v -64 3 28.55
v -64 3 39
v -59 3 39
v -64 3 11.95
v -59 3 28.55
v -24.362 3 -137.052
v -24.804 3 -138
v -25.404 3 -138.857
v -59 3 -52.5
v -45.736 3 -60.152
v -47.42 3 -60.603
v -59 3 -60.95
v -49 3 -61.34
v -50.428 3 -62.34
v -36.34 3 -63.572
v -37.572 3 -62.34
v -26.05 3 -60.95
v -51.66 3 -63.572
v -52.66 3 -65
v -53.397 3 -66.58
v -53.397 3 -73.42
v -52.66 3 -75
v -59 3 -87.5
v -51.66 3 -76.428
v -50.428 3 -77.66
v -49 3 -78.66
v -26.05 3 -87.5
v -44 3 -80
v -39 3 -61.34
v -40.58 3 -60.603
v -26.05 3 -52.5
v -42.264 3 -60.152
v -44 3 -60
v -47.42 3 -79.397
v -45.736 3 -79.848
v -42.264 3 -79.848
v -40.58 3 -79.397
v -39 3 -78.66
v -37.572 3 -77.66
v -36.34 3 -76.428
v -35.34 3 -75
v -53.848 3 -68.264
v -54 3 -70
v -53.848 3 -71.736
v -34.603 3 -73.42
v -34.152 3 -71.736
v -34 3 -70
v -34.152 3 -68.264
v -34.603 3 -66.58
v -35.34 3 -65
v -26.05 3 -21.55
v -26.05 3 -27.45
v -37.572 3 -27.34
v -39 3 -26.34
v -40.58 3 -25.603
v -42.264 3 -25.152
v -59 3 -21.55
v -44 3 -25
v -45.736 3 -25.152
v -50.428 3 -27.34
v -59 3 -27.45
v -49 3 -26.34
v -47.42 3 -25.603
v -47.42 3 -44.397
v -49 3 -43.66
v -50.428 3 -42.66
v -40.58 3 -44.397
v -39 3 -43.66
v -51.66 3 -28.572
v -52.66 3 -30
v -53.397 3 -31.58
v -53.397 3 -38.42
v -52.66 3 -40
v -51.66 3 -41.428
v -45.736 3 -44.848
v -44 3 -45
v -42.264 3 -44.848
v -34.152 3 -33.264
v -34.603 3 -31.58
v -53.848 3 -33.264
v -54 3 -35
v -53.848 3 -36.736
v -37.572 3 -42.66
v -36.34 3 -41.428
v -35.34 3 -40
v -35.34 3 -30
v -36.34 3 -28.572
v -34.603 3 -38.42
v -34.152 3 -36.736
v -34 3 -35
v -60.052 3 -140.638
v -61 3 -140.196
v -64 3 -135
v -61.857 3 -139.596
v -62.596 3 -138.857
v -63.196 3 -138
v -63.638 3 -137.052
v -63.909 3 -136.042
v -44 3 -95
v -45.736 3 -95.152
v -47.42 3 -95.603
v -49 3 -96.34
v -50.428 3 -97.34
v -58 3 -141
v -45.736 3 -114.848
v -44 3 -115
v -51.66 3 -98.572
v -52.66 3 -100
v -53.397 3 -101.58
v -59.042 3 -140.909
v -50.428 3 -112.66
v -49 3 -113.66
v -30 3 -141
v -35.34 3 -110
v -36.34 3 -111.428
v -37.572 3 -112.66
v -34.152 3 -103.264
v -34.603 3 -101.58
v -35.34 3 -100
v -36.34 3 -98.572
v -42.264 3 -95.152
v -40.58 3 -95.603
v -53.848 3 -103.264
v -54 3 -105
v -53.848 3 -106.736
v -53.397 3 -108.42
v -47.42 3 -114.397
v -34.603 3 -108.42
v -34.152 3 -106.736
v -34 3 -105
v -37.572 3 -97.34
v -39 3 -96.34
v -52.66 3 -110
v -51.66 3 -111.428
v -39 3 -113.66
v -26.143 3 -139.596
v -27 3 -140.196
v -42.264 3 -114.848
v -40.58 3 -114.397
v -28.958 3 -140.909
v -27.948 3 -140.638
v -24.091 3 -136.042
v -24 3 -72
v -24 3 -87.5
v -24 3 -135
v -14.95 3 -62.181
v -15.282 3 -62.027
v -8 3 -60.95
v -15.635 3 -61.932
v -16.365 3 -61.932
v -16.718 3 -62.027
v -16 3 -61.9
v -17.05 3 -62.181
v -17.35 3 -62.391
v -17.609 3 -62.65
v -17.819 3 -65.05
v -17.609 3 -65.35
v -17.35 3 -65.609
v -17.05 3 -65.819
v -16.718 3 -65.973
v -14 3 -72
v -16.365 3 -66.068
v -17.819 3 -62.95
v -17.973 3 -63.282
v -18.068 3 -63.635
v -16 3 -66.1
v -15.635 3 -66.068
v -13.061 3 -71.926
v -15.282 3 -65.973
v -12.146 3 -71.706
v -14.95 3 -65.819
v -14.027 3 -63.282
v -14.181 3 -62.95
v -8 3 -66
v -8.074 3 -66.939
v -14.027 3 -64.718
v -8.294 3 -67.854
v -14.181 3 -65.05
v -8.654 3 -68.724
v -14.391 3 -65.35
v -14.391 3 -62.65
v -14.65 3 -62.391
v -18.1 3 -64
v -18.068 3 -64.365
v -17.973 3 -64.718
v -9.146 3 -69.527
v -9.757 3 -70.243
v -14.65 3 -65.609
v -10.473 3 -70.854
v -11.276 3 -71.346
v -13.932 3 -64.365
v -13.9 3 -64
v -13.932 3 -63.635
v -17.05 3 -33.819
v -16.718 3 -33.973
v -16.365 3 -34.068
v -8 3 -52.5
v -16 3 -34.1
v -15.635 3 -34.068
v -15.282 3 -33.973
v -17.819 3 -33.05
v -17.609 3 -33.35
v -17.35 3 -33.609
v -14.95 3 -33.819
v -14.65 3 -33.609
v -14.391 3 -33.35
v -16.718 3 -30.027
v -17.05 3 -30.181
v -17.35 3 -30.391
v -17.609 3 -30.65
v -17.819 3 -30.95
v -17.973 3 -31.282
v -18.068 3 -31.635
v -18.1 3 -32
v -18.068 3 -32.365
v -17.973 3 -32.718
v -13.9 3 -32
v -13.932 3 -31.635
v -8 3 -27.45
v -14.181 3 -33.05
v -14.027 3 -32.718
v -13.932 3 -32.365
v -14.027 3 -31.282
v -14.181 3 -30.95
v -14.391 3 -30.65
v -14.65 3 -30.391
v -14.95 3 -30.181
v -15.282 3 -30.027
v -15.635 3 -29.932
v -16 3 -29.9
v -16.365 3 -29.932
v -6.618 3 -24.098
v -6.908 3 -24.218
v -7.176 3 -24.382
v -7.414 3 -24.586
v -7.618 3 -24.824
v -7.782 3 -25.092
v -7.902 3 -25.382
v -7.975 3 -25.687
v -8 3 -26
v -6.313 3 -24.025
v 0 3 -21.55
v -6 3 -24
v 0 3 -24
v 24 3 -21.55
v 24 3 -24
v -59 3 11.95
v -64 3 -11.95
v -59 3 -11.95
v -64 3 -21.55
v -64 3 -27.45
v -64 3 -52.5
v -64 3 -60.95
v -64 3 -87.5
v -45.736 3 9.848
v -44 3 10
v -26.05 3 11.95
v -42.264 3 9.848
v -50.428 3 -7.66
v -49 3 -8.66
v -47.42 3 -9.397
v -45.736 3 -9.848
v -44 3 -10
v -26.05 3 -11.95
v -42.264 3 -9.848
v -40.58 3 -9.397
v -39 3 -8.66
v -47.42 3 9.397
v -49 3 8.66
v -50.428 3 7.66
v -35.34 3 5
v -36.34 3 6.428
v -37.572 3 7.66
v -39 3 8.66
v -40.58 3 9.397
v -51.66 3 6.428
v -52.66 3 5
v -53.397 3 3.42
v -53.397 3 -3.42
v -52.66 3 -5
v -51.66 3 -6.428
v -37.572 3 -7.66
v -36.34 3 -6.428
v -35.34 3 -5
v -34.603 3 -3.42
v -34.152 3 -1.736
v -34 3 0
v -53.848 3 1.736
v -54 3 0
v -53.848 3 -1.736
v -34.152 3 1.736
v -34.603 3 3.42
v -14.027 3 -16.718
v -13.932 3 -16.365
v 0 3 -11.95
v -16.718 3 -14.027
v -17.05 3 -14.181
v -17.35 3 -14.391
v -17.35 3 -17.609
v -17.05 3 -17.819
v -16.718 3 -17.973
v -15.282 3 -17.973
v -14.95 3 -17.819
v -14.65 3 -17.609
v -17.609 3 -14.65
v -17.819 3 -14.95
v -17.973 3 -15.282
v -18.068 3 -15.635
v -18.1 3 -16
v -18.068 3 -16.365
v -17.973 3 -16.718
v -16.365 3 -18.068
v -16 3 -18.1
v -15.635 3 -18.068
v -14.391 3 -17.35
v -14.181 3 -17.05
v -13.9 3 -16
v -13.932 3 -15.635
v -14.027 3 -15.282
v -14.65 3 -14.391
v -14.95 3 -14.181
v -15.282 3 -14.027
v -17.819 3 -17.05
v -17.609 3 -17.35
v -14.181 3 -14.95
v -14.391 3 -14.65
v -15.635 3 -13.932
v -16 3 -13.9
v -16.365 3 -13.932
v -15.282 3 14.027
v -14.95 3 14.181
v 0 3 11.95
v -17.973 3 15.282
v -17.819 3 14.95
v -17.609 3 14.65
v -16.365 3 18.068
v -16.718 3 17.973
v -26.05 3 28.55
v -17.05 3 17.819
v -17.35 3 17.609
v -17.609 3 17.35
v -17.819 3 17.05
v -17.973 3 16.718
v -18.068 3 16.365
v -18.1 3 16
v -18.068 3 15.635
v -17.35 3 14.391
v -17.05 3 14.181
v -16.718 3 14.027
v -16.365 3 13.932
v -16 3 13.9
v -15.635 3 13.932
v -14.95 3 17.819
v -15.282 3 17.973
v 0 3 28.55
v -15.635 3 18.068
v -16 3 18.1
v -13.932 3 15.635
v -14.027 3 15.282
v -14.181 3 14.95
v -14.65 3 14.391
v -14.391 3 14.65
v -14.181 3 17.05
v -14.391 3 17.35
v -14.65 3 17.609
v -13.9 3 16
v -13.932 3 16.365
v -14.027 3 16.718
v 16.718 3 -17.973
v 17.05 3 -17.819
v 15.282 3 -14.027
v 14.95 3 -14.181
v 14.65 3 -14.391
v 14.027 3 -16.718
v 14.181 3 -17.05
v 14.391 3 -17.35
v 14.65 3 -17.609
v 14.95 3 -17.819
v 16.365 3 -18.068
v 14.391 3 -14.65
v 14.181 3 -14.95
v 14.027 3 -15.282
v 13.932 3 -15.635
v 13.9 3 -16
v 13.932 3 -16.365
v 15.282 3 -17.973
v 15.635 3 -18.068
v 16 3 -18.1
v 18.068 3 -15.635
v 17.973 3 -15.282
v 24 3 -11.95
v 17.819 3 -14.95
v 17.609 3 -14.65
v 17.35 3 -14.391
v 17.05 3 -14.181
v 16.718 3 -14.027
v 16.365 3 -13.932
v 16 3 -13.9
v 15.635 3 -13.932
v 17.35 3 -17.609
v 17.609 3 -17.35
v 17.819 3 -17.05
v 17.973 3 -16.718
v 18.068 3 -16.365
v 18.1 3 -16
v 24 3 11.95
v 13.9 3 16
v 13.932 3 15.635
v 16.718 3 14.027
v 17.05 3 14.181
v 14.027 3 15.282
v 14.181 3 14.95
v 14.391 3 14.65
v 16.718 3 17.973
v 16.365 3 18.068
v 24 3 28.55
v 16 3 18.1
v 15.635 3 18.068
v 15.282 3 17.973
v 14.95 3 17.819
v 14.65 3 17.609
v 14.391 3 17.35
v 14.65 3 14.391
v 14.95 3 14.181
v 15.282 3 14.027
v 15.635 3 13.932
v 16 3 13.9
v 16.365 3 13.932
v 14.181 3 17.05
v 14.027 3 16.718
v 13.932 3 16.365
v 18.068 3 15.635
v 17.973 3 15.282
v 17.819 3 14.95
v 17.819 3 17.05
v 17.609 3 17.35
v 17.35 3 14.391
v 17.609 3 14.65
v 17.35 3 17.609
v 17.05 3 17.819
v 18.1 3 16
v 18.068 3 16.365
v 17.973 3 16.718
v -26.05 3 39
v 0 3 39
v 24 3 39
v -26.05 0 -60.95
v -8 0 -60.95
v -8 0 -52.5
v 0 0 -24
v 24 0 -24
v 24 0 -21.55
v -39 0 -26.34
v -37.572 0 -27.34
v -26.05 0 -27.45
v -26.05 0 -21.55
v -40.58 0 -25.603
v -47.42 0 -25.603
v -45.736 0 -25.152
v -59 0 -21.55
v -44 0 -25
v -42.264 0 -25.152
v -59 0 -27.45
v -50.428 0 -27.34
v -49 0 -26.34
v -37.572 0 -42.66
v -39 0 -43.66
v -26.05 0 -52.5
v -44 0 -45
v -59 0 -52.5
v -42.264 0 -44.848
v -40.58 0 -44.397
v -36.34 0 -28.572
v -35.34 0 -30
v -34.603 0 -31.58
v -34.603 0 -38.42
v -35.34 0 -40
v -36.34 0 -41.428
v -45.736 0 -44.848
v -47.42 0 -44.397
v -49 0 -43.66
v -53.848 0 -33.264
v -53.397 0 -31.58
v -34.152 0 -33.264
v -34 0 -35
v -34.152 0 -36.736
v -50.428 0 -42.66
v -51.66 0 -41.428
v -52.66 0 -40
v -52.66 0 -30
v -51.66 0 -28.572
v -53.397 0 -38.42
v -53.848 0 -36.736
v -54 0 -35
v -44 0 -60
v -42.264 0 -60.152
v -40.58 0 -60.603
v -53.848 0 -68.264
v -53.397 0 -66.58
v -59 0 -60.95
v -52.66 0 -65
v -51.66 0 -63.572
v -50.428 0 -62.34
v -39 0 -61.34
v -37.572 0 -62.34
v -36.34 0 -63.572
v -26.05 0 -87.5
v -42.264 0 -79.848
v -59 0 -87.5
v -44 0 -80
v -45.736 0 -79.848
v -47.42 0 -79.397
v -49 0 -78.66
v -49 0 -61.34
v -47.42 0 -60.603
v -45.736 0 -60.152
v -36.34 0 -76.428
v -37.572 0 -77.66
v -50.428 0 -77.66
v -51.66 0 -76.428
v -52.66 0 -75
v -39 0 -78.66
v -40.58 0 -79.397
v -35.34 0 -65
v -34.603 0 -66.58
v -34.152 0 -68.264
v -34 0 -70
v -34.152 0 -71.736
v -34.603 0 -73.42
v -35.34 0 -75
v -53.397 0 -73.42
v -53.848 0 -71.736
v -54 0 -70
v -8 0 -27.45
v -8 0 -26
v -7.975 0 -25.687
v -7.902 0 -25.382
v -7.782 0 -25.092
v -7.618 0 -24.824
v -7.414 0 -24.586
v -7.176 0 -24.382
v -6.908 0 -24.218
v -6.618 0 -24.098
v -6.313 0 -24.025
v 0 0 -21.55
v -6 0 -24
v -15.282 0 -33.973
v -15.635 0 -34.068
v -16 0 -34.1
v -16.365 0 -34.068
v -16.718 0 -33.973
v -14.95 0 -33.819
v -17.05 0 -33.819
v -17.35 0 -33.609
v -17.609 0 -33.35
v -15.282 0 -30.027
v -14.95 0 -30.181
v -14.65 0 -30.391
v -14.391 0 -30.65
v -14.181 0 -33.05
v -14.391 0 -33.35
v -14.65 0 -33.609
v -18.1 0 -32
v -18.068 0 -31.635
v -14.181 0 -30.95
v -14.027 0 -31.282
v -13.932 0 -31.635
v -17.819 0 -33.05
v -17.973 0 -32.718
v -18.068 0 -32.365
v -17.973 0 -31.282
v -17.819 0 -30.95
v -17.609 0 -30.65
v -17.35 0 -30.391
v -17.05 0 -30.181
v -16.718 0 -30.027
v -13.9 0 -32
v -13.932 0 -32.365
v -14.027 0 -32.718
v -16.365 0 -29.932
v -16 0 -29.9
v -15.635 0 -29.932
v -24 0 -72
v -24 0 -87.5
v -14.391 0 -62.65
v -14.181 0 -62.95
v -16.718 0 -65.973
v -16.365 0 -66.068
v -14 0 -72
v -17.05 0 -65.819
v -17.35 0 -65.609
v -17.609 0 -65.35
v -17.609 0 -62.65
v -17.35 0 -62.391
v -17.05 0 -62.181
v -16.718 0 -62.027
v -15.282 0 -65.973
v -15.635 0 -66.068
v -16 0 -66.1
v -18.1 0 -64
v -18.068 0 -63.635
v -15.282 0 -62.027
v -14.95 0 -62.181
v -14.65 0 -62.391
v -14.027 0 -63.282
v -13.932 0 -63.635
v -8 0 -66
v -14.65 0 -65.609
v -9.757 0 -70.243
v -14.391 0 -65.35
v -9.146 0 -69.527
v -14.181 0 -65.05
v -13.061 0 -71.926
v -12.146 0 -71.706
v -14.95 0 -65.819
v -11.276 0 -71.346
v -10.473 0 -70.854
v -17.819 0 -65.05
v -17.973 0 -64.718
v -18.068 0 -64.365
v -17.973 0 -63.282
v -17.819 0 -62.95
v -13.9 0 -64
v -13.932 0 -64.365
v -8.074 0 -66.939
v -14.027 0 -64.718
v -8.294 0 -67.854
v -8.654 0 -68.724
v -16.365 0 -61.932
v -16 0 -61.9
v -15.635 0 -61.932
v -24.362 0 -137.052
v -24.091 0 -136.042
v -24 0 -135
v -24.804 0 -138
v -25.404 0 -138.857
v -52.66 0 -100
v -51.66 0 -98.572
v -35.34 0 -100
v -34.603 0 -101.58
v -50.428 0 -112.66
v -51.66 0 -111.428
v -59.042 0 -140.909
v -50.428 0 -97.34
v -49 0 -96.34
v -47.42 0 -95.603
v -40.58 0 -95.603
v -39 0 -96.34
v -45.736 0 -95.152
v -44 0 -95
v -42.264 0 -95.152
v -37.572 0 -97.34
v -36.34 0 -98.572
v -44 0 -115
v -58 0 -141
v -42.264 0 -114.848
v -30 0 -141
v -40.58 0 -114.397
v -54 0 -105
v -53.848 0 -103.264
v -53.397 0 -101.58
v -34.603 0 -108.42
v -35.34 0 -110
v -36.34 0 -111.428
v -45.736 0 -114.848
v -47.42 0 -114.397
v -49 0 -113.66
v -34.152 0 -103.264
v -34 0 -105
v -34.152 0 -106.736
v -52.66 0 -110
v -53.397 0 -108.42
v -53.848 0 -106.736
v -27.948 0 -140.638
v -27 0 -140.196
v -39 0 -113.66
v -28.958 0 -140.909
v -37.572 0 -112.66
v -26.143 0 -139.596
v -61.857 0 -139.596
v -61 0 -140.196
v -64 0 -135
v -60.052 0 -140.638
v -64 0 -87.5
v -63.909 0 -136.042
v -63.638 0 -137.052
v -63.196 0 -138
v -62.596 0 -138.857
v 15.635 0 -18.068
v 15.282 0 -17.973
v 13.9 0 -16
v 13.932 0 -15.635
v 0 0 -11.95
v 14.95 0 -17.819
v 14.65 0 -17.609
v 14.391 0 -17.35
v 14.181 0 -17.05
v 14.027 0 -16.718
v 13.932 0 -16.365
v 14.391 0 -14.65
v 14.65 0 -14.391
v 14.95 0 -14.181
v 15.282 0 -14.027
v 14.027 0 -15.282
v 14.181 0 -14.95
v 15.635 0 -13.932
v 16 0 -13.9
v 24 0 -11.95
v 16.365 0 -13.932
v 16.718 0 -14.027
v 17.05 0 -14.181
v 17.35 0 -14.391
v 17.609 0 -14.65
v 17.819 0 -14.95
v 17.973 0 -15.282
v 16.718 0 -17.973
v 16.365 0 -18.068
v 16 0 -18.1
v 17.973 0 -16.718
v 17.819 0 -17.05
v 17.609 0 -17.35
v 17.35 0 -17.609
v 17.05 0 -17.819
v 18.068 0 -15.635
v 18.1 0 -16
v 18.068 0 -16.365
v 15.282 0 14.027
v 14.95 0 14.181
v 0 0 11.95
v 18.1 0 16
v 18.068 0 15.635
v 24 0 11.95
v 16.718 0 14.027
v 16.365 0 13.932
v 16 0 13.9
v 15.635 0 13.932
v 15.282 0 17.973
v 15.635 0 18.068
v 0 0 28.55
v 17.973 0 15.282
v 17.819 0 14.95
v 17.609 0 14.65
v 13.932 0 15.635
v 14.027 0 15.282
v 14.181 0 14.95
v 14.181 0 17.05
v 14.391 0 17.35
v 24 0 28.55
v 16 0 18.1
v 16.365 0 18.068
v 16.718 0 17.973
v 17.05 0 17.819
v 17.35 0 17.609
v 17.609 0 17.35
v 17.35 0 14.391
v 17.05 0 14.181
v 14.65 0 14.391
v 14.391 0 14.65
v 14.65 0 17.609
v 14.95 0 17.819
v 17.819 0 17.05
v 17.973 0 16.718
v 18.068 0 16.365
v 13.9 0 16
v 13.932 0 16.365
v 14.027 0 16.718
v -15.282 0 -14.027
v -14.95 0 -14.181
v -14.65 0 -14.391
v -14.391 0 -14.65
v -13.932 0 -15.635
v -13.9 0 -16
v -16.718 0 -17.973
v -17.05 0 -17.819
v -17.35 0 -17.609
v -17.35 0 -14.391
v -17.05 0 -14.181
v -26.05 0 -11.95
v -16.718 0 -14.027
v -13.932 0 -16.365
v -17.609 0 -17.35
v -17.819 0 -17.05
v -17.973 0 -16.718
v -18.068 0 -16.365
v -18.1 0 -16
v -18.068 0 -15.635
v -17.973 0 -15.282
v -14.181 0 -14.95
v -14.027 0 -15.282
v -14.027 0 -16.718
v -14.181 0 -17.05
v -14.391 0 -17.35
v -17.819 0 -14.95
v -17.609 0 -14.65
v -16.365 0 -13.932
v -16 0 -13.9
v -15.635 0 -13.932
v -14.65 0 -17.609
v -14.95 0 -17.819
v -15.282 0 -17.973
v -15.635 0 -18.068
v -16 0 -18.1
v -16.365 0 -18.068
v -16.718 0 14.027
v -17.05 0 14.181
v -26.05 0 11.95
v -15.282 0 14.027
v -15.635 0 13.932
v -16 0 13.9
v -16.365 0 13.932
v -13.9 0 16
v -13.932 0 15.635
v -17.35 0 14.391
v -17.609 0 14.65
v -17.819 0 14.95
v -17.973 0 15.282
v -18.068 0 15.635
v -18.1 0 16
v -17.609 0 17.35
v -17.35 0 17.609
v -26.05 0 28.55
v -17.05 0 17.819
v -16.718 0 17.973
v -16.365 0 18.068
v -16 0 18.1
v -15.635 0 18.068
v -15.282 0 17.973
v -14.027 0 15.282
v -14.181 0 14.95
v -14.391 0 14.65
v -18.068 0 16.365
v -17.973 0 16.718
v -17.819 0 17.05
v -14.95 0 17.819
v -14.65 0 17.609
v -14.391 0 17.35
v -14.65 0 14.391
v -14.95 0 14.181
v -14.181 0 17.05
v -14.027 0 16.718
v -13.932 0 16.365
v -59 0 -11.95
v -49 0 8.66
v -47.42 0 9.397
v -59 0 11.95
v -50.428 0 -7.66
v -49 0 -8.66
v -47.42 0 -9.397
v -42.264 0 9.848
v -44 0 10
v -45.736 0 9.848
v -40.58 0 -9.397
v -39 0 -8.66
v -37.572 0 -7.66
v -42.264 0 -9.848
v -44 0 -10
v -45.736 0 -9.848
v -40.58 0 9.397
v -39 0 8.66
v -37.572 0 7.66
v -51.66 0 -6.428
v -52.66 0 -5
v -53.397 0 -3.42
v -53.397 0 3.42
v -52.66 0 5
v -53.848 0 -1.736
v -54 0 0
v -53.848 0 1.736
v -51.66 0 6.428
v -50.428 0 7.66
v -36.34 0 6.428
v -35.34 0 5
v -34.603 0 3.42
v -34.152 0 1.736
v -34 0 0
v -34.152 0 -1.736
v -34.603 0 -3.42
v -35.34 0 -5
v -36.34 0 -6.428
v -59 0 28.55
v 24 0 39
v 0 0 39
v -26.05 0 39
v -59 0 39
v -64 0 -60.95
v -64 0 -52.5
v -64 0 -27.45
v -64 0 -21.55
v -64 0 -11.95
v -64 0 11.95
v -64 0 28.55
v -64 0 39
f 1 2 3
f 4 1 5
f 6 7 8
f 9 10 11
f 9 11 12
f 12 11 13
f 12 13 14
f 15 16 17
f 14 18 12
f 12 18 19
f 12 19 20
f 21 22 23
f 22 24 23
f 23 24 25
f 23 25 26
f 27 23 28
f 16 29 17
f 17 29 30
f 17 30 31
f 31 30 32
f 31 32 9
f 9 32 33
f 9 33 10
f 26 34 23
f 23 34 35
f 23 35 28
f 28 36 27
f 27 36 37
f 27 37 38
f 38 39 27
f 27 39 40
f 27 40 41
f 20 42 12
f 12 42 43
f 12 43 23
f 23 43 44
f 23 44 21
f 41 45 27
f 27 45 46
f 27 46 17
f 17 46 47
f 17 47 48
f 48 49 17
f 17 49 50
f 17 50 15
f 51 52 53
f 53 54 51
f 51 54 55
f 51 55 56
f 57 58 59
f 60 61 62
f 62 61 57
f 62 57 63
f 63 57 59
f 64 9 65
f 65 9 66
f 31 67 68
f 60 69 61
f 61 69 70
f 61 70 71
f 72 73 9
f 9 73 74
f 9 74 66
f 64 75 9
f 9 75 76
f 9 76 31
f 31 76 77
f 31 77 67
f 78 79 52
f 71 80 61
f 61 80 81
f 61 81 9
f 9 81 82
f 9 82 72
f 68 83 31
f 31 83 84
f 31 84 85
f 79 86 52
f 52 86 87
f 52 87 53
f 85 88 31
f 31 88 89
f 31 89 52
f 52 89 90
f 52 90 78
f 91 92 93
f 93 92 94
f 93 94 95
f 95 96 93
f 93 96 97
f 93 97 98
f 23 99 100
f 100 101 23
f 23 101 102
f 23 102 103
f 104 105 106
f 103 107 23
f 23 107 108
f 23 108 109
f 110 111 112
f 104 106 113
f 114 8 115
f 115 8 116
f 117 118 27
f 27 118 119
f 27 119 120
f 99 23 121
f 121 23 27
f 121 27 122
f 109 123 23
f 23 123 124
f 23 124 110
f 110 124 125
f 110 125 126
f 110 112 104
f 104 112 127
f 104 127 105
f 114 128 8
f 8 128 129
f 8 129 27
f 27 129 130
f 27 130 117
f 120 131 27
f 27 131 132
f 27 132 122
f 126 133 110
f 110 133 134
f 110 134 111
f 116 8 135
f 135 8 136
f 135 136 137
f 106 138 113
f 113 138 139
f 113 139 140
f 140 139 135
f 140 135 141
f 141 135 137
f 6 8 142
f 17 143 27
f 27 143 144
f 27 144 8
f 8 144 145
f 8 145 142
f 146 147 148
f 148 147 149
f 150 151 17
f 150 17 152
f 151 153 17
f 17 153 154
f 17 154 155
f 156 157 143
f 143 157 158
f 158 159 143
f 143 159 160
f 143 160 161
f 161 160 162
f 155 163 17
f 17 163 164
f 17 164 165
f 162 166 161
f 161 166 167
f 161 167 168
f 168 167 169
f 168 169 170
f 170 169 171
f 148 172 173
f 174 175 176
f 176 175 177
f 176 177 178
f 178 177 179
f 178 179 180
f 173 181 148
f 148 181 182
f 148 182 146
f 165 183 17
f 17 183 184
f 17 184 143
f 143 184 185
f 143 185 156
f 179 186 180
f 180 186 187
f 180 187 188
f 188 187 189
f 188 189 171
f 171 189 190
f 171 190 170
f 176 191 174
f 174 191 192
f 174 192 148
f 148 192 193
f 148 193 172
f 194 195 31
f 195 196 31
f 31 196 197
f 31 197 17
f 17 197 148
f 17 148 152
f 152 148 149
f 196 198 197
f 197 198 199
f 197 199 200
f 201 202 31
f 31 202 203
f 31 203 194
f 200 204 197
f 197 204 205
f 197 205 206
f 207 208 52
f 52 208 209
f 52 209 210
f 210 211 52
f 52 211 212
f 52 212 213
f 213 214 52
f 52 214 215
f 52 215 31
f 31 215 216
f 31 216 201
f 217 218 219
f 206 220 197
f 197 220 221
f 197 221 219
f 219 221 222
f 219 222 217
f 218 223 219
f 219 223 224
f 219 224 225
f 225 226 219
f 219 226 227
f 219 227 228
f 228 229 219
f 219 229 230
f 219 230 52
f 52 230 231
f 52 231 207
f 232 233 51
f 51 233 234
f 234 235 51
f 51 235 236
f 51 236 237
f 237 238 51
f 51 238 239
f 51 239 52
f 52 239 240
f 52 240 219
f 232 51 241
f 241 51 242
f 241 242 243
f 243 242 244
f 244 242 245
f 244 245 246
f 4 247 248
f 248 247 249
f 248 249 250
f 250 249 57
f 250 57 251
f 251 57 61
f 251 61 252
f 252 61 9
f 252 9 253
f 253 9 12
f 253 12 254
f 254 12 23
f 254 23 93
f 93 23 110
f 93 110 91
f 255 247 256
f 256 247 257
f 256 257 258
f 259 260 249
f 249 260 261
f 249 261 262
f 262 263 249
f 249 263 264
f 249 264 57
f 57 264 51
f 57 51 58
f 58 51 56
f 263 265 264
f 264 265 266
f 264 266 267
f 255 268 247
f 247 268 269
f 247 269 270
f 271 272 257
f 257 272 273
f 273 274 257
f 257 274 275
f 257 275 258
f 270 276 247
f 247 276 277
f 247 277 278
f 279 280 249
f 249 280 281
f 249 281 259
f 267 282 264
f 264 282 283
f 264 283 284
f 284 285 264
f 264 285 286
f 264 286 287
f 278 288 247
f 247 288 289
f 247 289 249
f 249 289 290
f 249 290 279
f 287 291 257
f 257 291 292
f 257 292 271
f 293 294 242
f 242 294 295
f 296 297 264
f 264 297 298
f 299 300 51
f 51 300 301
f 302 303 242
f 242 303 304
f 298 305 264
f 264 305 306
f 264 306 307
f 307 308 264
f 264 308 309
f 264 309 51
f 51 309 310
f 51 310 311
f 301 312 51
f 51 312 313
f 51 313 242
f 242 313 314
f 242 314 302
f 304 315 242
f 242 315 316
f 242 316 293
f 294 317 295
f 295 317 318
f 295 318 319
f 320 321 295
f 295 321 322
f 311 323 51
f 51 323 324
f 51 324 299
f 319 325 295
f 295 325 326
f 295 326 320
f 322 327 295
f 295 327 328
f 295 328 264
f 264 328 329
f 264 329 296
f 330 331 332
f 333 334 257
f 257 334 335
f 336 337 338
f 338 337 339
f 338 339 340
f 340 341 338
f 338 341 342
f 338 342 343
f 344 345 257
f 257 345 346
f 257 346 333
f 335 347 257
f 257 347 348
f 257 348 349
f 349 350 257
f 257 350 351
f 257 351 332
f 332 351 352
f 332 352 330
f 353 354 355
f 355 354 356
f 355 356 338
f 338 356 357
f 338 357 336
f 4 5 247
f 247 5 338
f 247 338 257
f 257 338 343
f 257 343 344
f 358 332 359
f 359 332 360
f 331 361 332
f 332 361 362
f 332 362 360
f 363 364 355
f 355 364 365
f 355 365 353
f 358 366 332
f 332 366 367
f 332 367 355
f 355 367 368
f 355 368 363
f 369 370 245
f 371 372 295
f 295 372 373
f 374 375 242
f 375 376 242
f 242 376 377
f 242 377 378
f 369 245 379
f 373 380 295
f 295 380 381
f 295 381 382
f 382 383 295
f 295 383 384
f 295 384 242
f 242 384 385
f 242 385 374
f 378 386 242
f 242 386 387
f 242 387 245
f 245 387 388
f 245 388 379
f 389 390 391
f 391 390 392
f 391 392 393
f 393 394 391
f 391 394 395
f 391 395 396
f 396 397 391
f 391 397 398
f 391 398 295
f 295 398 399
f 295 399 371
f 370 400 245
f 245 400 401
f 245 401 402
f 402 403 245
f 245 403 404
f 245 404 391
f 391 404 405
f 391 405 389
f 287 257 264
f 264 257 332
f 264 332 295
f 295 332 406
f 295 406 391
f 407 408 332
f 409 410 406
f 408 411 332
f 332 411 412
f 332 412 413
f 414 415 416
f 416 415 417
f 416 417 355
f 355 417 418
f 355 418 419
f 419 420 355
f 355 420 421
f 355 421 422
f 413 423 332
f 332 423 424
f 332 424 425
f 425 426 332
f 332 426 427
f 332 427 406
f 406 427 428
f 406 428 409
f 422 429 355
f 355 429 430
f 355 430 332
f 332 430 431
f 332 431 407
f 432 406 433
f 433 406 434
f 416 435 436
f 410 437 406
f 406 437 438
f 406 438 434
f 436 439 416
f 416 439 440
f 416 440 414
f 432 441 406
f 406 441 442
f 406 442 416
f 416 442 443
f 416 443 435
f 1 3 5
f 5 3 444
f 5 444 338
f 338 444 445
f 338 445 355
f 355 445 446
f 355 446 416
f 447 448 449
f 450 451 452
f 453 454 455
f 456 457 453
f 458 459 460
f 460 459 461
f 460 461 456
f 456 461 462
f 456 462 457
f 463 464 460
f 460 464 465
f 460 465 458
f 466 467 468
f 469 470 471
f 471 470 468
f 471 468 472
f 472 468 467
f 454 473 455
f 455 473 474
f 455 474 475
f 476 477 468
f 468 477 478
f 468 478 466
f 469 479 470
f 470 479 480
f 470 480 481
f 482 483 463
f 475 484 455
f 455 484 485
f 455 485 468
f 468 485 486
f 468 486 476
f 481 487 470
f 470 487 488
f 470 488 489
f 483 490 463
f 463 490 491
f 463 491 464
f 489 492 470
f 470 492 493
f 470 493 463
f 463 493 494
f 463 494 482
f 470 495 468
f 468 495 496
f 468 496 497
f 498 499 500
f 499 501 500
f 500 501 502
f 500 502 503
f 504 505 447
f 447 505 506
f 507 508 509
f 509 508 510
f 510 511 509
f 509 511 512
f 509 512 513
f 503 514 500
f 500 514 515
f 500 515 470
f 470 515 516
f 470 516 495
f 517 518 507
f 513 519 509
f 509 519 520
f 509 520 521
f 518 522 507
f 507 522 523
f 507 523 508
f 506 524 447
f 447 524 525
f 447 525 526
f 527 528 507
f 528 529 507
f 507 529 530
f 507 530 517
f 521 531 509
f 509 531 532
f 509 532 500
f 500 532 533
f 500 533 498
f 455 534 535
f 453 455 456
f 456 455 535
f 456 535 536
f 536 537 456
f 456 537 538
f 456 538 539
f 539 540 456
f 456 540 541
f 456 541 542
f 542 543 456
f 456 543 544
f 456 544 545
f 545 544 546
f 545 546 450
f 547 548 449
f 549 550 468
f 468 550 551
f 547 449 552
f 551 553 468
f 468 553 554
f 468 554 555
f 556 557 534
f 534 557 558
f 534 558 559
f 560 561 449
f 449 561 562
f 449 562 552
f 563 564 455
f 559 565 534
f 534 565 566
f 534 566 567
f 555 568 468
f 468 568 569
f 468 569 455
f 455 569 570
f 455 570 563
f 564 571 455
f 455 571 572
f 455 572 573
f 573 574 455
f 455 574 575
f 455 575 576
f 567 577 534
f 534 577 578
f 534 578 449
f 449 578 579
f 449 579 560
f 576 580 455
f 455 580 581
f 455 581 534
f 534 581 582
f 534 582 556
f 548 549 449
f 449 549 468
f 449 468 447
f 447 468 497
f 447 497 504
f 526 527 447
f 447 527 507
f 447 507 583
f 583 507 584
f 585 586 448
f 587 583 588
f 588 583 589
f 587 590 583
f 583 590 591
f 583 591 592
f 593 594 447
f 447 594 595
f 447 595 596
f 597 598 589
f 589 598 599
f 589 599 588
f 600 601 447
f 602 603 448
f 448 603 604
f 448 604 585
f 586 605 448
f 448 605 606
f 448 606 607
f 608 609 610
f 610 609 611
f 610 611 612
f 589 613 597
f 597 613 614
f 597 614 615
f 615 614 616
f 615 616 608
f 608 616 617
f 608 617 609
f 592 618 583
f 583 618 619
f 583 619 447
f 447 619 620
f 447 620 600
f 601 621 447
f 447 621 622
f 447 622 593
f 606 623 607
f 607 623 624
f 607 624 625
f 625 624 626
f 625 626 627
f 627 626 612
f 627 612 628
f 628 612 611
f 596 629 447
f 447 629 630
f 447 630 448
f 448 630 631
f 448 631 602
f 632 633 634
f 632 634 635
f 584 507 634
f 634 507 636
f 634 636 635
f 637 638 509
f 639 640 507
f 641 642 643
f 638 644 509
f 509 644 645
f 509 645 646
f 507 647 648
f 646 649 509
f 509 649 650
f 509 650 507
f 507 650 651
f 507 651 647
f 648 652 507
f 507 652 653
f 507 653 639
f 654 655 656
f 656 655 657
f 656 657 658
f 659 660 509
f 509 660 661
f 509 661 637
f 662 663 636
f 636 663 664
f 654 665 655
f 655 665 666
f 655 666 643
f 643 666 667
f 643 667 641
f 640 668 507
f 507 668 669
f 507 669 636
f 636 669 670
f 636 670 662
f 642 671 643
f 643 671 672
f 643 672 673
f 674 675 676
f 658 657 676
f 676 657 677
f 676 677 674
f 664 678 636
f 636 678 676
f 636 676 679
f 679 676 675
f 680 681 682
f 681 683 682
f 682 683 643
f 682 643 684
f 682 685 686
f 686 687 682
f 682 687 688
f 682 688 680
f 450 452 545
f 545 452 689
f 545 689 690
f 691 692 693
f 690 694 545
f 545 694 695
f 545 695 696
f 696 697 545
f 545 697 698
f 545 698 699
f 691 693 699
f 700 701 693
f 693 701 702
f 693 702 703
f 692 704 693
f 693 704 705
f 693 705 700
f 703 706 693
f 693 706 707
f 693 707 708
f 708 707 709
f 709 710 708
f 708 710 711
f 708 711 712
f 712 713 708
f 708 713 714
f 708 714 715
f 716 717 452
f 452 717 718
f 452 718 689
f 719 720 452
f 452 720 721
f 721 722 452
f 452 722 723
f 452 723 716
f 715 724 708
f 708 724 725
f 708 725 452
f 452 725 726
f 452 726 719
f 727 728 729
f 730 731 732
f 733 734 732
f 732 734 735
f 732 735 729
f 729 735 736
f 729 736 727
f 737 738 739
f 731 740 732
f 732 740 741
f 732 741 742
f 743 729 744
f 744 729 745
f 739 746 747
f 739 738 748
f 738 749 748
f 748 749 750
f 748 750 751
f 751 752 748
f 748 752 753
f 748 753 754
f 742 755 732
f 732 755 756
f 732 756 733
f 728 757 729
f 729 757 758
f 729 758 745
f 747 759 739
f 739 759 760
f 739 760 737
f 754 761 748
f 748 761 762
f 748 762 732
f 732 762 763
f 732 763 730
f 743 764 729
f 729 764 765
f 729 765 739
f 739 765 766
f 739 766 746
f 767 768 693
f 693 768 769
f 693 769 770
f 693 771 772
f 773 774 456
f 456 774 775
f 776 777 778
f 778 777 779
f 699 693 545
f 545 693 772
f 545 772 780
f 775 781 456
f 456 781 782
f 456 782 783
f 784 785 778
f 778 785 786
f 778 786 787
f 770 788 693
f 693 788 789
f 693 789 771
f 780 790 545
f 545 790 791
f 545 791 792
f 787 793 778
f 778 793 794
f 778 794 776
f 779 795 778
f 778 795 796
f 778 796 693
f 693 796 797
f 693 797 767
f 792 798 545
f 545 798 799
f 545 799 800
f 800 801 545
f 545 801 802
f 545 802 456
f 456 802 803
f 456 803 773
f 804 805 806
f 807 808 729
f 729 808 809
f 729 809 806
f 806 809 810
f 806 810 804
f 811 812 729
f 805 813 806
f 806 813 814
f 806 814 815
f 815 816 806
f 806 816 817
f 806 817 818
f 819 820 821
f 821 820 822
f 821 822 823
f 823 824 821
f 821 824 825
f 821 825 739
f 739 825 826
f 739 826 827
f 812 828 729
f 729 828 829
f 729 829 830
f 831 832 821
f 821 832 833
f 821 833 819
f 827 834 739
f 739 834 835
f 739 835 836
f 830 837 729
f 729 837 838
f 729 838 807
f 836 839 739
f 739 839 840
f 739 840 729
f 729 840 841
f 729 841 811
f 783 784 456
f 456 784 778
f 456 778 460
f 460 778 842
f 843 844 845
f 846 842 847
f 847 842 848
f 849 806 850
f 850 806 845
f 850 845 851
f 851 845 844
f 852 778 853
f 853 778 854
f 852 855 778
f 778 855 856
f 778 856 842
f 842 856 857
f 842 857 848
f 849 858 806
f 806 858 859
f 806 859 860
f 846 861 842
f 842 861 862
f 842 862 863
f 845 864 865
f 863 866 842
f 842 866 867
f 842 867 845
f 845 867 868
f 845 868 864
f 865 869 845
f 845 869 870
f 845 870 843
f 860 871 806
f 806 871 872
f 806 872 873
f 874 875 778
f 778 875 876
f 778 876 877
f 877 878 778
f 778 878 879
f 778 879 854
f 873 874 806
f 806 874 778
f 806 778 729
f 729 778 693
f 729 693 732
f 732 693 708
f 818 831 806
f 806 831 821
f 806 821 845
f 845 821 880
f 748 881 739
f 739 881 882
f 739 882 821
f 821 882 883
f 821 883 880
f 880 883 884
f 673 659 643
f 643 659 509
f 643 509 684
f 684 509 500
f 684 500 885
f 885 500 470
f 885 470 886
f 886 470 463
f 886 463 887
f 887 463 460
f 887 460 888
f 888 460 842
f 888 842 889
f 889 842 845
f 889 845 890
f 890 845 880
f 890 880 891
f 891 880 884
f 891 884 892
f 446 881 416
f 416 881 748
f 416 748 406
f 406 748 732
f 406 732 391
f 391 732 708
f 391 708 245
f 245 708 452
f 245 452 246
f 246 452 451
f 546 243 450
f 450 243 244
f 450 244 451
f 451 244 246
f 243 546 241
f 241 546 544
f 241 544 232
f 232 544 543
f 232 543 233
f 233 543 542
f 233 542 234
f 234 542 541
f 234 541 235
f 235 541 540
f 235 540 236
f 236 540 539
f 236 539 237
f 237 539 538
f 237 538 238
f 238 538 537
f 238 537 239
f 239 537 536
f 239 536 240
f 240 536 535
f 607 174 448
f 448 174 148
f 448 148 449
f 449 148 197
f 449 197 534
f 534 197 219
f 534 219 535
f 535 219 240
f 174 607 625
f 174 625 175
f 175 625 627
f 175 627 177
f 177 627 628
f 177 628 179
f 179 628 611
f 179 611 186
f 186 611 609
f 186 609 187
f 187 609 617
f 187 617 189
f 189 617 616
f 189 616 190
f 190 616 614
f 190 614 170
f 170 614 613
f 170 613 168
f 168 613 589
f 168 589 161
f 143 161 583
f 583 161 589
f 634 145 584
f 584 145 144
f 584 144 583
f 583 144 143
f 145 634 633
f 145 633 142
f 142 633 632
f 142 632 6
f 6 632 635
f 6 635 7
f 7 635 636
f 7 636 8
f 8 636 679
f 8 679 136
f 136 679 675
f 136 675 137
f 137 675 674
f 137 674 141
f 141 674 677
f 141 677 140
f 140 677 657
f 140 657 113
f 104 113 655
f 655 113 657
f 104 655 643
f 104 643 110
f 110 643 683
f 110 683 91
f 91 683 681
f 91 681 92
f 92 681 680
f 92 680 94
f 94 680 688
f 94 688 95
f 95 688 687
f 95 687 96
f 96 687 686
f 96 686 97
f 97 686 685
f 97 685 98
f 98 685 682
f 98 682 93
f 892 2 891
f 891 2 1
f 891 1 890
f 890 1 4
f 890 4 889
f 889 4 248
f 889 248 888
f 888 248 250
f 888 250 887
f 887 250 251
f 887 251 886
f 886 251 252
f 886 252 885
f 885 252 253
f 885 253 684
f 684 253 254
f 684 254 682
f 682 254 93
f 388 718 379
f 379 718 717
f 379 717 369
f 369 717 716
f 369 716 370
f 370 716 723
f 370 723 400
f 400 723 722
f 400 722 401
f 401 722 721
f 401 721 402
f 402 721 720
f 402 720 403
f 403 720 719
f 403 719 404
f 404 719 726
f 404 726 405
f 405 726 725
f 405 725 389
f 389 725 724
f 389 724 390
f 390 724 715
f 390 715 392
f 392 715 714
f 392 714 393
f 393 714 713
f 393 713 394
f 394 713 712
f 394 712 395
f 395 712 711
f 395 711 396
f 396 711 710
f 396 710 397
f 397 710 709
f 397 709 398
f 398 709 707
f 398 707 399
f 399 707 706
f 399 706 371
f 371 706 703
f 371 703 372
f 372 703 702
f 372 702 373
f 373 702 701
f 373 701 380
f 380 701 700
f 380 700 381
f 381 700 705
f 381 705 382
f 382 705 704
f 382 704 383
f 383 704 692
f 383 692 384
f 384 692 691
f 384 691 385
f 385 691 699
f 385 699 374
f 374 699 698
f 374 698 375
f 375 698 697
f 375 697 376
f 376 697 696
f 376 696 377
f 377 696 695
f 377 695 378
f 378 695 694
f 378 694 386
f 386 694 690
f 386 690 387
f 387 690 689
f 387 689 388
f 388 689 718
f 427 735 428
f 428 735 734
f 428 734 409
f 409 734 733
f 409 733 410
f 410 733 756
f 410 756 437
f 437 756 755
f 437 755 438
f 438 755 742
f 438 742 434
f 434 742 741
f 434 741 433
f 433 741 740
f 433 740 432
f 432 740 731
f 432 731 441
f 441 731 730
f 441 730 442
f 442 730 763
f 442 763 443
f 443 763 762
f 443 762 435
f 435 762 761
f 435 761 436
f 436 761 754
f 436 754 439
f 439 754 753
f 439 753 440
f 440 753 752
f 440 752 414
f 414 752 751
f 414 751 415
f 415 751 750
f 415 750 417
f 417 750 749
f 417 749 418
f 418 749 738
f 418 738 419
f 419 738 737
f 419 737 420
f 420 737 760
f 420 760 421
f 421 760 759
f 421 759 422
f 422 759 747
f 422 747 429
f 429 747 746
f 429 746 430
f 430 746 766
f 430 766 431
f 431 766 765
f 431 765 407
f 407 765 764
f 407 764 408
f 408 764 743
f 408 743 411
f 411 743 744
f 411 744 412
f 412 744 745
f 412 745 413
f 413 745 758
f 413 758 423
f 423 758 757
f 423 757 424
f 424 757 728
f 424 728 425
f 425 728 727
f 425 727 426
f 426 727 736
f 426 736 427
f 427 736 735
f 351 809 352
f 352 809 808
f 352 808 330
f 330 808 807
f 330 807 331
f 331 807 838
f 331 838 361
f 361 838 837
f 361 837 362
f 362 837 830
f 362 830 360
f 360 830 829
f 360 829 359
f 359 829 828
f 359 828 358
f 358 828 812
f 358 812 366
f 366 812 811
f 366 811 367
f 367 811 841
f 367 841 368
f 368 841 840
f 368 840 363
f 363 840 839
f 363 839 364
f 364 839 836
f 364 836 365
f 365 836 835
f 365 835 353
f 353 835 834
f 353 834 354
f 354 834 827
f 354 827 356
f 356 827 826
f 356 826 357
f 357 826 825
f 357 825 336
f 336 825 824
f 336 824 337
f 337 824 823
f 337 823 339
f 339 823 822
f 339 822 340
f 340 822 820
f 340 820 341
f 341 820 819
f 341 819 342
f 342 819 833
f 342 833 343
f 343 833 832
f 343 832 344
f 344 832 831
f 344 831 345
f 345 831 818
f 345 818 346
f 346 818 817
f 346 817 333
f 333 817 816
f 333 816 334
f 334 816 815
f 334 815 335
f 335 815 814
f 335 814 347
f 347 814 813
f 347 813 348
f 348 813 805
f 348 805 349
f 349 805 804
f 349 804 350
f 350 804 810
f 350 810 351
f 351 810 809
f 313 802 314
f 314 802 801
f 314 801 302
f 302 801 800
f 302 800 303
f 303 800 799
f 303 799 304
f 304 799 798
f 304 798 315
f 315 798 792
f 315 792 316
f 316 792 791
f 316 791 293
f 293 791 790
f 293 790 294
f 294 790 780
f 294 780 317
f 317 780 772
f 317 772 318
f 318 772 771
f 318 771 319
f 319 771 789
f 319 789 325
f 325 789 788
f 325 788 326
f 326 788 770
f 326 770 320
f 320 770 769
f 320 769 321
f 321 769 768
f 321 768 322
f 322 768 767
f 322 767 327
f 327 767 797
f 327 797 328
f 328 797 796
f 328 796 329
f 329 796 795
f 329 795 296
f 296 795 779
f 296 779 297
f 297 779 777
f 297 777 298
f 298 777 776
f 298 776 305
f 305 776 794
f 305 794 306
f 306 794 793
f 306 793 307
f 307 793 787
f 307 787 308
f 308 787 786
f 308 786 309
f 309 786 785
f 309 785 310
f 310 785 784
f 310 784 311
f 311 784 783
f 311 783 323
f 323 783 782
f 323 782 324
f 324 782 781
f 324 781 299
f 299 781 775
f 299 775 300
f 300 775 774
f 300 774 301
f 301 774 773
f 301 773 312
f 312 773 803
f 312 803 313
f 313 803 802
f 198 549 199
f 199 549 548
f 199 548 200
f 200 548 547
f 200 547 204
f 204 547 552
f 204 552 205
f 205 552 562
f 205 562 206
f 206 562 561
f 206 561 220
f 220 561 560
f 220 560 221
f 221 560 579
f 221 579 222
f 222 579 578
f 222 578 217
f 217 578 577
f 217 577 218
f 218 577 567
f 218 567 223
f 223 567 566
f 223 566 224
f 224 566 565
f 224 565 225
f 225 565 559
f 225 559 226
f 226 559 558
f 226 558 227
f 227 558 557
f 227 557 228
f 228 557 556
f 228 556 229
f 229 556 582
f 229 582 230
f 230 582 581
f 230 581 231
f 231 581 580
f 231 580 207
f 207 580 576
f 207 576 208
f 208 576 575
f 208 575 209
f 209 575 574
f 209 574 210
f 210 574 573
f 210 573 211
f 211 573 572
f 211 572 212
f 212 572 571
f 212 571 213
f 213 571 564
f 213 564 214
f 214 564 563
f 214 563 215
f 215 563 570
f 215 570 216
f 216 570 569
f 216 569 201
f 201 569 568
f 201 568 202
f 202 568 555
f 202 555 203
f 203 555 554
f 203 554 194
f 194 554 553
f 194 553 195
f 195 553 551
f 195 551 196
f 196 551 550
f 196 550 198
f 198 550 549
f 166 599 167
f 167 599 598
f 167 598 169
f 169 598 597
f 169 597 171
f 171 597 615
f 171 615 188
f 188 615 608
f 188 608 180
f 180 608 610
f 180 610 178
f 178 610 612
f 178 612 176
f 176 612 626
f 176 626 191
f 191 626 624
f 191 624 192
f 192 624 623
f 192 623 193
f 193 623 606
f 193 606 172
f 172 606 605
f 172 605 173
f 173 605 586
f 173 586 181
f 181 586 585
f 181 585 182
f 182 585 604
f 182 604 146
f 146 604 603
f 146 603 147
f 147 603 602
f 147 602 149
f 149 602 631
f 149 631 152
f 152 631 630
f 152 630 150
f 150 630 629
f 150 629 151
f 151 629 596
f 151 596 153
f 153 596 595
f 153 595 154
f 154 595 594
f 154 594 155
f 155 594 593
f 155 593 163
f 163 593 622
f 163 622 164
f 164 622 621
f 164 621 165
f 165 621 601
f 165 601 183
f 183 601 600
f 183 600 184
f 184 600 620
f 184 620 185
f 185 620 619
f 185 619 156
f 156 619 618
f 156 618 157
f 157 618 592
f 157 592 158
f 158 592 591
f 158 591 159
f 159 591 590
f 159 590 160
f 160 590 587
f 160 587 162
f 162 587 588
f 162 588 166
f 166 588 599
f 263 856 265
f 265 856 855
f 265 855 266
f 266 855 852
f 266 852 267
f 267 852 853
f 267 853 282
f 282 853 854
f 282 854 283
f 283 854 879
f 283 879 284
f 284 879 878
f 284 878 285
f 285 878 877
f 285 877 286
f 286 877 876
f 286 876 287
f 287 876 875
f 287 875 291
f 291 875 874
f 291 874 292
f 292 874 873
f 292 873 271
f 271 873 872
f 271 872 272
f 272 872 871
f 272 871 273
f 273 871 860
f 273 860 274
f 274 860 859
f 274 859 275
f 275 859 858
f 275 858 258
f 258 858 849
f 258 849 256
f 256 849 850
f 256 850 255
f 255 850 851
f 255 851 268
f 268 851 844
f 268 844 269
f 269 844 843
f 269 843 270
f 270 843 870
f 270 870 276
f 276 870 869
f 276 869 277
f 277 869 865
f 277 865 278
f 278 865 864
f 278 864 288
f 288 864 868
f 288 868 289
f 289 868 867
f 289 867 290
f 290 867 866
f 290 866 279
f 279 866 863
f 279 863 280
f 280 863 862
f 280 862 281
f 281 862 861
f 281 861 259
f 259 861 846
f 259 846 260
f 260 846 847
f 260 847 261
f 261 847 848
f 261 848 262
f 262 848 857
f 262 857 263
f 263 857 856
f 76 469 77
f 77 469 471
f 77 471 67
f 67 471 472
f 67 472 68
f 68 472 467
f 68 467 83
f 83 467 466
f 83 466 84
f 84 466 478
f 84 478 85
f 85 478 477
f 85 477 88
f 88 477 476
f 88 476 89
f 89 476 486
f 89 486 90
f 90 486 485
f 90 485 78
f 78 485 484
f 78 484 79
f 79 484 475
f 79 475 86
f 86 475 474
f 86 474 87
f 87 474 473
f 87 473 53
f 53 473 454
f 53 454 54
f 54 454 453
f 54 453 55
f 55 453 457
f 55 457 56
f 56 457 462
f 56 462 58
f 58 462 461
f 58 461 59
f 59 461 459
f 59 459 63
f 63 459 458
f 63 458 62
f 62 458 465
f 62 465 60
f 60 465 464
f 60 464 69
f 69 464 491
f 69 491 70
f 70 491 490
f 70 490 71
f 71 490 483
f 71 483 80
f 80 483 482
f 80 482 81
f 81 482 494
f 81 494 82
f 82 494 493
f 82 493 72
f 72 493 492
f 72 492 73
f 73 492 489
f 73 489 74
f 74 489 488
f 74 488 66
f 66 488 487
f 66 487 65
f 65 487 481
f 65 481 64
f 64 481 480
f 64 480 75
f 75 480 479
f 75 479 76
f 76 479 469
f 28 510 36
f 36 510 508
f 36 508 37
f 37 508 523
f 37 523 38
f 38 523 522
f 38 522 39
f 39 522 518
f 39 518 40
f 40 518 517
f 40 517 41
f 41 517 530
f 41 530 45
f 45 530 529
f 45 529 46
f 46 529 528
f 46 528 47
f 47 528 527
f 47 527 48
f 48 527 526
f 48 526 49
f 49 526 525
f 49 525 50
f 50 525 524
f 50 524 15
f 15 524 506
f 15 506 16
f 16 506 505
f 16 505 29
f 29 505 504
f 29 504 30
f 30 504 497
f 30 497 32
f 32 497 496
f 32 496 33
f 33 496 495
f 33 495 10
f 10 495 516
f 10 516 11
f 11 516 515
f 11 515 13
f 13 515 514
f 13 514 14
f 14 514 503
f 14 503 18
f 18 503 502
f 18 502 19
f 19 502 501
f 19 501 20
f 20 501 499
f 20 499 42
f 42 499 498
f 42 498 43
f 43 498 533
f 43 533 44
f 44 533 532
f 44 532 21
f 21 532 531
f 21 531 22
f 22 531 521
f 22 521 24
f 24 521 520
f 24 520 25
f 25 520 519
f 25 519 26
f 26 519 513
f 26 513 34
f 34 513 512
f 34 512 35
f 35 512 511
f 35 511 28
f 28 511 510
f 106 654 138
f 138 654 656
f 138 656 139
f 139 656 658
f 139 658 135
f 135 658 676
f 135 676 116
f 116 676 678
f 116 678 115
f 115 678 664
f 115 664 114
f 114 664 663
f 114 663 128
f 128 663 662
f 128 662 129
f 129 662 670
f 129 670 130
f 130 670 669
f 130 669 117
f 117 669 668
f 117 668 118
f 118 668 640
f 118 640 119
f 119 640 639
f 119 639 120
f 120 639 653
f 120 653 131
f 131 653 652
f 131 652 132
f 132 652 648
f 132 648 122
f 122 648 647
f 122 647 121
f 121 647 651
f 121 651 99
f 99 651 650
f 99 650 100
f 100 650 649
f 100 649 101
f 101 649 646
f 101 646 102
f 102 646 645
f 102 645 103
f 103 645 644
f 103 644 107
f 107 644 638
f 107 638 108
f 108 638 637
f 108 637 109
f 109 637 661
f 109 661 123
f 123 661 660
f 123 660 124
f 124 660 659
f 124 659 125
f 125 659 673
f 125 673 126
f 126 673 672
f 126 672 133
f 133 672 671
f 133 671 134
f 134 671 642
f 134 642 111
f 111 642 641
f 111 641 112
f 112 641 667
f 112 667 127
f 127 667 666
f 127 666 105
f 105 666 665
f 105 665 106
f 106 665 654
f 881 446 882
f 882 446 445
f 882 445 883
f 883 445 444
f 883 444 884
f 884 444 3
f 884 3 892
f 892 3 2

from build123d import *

# Parameters (mm, degrees)
SKETCH1_R               = 2.1
SKETCH1_R_2             = 10
BOSS_EXTRUDE1_DEPTH     = 3
SKETCH2_W               = 88
SKETCH2_H               = 4
CUT_EXTRUDE1_DEPTH      = 1
CUT_EXTRUDE1_DEPTH_BACK = 4


with BuildPart() as part:
    # Sketch1 → Boss-Extrude1 (new body)
    with BuildSketch(Plane(origin=(0, 0, 0), x_dir=(1, 0, 0), z_dir=(0, 1, 0))):
        with BuildLine():
            Line((-8, 26), (-8, 66))
            ThreePointArc((-8, 66), (-9.757359313, 70.242640687), (-14, 72))
            Line((-14, 72), (-24, 72))
            Line((-24, 72), (-24, 135))
            ThreePointArc((-24, 135), (-25.757359313, 139.242640687), (-30, 141))
            Line((-30, 141), (-58, 141))
            ThreePointArc((-58, 141), (-62.242640687, 139.242640687), (-64, 135))
            Line((-64, 135), (-64, -43))
            Line((-64, -43), (-24, -43))
            Line((-24, -43), (24, -43))
            Line((24, -43), (24, 24))
            Line((24, 24), (-6, 24))
            ThreePointArc((-6, 24), (-7.414213562, 24.585786438), (-8, 26))
        make_face()
        with Locations((16, 16)):
            Circle(SKETCH1_R, mode=Mode.SUBTRACT)
        with Locations((16, -16)):
            Circle(SKETCH1_R, mode=Mode.SUBTRACT)
        with Locations((-16, -16)):
            Circle(SKETCH1_R, mode=Mode.SUBTRACT)
        with Locations((-16, 16)):
            Circle(SKETCH1_R, mode=Mode.SUBTRACT)
        with Locations((-16, 32)):
            Circle(SKETCH1_R, mode=Mode.SUBTRACT)
        with Locations((-16, 64)):
            Circle(SKETCH1_R, mode=Mode.SUBTRACT)
        with Locations((-44, 0)):
            Circle(SKETCH1_R_2, mode=Mode.SUBTRACT)
        with Locations((-44, 35)):
            Circle(SKETCH1_R_2, mode=Mode.SUBTRACT)
        with Locations((-44, 70)):
            Circle(SKETCH1_R_2, mode=Mode.SUBTRACT)
        with Locations((-44, 105)):
            Circle(SKETCH1_R_2, mode=Mode.SUBTRACT)
    extrude(amount=BOSS_EXTRUDE1_DEPTH)

    # Sketch2 → Cut-Extrude1 (cut, two sides)
    with BuildSketch(Plane(origin=(0, 3, 0), x_dir=(1, 0, 0), z_dir=(0, 1, 0))) as cut_extrude1_sk:
        with Locations((-20, -41)):
            Rectangle(SKETCH2_W, SKETCH2_H)
    extrude(amount=CUT_EXTRUDE1_DEPTH, mode=Mode.SUBTRACT)
    extrude(cut_extrude1_sk.sketch, amount=-CUT_EXTRUDE1_DEPTH_BACK, mode=Mode.SUBTRACT)


solid = part.part
